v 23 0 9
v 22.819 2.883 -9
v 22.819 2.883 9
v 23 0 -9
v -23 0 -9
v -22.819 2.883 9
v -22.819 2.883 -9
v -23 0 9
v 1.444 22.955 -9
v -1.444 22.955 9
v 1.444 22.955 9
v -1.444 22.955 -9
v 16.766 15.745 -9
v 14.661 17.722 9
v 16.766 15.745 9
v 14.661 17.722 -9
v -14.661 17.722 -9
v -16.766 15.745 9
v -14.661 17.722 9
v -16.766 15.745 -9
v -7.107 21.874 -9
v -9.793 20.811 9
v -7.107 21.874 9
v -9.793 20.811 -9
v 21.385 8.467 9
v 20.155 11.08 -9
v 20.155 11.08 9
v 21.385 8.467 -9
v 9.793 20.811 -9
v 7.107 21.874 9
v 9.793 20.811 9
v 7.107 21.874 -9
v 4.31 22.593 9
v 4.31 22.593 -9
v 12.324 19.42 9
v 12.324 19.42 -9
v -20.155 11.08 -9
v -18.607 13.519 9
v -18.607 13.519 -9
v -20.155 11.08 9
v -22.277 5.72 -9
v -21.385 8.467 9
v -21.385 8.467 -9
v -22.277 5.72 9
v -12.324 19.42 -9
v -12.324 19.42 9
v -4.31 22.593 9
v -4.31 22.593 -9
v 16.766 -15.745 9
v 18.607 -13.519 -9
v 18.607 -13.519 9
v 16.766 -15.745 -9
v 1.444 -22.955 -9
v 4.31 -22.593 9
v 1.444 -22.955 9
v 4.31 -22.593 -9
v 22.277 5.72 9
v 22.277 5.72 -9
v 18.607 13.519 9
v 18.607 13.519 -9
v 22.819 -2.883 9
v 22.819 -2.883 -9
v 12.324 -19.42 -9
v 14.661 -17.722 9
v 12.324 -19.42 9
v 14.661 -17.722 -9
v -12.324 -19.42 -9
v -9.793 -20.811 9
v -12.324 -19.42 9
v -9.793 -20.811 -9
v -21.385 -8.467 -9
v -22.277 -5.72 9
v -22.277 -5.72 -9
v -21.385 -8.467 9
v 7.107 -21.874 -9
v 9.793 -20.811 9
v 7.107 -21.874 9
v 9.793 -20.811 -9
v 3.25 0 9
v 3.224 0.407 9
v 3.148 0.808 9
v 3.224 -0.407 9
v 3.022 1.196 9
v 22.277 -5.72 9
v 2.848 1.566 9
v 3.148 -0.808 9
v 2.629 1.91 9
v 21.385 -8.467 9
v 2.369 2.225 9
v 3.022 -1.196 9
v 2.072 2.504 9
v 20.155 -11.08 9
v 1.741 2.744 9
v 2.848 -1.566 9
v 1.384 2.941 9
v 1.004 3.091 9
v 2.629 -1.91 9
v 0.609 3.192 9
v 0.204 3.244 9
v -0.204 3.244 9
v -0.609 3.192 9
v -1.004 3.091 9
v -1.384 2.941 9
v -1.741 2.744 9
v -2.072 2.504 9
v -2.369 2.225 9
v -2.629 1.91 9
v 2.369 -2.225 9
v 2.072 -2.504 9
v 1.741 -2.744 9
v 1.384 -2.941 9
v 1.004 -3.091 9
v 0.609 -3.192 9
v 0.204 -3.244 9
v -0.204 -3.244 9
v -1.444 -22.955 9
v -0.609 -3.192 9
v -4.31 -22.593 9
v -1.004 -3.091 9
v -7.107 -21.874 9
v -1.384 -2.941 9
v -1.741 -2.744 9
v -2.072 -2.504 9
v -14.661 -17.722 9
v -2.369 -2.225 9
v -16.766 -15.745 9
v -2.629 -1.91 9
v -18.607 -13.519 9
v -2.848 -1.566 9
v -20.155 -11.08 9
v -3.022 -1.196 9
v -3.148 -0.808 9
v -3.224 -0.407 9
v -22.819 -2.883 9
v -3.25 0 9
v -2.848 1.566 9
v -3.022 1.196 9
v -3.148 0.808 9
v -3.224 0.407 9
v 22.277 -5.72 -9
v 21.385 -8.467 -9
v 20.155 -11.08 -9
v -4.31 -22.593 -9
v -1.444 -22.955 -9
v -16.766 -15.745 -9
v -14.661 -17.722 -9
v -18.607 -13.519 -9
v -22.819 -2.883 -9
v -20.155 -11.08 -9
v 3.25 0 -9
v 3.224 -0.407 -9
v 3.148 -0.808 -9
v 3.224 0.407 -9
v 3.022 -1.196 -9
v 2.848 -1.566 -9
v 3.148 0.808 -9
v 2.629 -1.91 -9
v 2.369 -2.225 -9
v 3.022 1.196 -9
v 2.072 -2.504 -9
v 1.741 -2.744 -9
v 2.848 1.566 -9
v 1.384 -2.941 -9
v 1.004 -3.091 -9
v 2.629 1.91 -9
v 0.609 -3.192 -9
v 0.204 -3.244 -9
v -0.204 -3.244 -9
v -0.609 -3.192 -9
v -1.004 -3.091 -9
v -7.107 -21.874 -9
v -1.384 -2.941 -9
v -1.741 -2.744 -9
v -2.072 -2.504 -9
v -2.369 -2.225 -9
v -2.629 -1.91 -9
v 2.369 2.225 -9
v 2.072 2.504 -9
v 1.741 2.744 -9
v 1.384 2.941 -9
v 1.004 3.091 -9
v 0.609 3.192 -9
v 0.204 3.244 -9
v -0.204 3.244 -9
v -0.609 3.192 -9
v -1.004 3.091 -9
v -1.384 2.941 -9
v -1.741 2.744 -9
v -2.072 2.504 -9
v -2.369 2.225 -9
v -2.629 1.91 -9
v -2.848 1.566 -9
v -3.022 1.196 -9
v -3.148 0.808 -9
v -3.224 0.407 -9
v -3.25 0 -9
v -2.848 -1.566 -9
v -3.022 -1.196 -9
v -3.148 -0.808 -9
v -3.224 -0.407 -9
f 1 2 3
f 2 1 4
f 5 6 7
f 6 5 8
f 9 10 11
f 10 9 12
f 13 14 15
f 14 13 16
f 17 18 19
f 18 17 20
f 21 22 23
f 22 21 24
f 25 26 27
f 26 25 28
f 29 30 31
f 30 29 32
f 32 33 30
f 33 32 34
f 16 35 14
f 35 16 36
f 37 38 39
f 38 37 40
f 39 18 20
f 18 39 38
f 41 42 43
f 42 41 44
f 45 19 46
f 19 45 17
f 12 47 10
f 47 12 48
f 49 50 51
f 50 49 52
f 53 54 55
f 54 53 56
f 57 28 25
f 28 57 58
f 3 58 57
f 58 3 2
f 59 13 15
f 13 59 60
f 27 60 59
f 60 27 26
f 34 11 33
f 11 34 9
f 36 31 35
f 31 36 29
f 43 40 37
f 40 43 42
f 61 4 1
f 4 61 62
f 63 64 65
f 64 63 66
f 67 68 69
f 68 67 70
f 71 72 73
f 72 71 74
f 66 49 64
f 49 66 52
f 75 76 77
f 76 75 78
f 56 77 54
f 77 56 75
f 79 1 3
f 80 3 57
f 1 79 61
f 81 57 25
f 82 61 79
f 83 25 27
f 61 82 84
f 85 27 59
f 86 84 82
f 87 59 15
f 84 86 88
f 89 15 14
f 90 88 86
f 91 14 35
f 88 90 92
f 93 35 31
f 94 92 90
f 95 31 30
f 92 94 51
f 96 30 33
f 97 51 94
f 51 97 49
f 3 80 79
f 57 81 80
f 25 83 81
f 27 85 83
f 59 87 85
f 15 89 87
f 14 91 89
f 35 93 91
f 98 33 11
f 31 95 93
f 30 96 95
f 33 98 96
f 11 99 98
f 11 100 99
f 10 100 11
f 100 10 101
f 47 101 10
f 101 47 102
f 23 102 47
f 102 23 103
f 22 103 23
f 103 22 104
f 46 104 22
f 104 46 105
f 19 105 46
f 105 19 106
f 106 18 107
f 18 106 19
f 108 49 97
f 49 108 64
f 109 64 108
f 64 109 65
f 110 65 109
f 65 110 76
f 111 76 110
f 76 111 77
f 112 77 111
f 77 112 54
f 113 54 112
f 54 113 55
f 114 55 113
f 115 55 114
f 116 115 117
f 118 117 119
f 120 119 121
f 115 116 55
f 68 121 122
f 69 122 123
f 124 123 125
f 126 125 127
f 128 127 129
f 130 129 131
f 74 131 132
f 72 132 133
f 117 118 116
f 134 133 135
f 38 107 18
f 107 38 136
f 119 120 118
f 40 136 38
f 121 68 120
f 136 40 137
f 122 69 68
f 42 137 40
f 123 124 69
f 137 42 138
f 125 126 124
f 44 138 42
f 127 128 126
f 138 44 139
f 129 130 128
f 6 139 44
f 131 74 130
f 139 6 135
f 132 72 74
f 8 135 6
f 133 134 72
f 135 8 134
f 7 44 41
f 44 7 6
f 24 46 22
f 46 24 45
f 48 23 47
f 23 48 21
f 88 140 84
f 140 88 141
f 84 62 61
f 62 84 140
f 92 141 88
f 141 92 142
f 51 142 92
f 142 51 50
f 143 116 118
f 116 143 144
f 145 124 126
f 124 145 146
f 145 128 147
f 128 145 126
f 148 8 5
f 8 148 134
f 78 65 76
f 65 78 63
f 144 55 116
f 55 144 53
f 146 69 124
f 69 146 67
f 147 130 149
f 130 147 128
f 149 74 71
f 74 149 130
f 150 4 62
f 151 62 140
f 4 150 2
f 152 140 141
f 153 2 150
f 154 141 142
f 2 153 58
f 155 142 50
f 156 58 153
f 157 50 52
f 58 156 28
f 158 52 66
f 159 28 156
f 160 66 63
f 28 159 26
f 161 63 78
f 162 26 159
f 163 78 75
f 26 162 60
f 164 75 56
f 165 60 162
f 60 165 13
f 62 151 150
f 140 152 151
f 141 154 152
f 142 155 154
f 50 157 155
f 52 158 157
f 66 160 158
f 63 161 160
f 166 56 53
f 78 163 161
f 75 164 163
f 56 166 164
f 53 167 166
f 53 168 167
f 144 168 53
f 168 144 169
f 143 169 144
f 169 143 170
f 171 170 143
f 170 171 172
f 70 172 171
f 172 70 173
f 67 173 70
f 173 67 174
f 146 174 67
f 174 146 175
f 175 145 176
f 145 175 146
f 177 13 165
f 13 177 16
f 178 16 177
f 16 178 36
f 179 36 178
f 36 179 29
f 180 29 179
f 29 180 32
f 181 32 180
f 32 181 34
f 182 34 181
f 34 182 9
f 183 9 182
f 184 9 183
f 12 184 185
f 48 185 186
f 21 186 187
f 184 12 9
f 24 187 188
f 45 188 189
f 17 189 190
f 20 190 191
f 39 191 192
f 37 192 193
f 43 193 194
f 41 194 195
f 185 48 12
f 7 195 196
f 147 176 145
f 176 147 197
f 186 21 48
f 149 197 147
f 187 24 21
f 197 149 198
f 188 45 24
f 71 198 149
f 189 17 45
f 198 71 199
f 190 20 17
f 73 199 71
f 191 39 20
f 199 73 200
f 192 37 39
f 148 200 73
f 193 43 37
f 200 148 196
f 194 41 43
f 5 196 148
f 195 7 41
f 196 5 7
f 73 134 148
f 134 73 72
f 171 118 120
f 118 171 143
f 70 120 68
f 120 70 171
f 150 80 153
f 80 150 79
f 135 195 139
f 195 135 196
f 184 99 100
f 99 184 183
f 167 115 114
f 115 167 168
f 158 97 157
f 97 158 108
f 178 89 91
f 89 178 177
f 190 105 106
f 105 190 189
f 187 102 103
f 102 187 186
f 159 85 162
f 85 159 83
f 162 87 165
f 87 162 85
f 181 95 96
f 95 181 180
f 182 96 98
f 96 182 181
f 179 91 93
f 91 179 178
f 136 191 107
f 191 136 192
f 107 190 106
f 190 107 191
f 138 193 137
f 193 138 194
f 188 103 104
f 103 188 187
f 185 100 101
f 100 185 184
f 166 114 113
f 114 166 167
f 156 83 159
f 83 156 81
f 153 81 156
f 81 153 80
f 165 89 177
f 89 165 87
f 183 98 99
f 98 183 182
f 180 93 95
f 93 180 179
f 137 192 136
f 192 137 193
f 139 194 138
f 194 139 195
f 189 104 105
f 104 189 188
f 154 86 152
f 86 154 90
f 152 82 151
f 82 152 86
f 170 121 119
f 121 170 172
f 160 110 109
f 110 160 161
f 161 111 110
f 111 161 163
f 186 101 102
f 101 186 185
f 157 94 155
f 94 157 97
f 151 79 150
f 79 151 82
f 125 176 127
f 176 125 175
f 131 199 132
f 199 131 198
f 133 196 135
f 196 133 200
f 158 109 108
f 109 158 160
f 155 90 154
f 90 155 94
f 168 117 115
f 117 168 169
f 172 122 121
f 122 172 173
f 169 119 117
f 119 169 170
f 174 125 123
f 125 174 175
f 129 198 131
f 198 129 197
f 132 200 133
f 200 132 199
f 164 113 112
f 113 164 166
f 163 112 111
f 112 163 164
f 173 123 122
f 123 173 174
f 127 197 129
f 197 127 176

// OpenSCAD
$fn = 50;


difference() {
	union() {
		translate(v = [0, 0, -9.0000000000]) {
			cylinder(h = 18, r = 23.0000000000);
		}
	}
	union() {
		translate(v = [0, 0, -100.0000000000]) {
			cylinder(h = 200, r = 3.2500000000);
		}
	}
}
